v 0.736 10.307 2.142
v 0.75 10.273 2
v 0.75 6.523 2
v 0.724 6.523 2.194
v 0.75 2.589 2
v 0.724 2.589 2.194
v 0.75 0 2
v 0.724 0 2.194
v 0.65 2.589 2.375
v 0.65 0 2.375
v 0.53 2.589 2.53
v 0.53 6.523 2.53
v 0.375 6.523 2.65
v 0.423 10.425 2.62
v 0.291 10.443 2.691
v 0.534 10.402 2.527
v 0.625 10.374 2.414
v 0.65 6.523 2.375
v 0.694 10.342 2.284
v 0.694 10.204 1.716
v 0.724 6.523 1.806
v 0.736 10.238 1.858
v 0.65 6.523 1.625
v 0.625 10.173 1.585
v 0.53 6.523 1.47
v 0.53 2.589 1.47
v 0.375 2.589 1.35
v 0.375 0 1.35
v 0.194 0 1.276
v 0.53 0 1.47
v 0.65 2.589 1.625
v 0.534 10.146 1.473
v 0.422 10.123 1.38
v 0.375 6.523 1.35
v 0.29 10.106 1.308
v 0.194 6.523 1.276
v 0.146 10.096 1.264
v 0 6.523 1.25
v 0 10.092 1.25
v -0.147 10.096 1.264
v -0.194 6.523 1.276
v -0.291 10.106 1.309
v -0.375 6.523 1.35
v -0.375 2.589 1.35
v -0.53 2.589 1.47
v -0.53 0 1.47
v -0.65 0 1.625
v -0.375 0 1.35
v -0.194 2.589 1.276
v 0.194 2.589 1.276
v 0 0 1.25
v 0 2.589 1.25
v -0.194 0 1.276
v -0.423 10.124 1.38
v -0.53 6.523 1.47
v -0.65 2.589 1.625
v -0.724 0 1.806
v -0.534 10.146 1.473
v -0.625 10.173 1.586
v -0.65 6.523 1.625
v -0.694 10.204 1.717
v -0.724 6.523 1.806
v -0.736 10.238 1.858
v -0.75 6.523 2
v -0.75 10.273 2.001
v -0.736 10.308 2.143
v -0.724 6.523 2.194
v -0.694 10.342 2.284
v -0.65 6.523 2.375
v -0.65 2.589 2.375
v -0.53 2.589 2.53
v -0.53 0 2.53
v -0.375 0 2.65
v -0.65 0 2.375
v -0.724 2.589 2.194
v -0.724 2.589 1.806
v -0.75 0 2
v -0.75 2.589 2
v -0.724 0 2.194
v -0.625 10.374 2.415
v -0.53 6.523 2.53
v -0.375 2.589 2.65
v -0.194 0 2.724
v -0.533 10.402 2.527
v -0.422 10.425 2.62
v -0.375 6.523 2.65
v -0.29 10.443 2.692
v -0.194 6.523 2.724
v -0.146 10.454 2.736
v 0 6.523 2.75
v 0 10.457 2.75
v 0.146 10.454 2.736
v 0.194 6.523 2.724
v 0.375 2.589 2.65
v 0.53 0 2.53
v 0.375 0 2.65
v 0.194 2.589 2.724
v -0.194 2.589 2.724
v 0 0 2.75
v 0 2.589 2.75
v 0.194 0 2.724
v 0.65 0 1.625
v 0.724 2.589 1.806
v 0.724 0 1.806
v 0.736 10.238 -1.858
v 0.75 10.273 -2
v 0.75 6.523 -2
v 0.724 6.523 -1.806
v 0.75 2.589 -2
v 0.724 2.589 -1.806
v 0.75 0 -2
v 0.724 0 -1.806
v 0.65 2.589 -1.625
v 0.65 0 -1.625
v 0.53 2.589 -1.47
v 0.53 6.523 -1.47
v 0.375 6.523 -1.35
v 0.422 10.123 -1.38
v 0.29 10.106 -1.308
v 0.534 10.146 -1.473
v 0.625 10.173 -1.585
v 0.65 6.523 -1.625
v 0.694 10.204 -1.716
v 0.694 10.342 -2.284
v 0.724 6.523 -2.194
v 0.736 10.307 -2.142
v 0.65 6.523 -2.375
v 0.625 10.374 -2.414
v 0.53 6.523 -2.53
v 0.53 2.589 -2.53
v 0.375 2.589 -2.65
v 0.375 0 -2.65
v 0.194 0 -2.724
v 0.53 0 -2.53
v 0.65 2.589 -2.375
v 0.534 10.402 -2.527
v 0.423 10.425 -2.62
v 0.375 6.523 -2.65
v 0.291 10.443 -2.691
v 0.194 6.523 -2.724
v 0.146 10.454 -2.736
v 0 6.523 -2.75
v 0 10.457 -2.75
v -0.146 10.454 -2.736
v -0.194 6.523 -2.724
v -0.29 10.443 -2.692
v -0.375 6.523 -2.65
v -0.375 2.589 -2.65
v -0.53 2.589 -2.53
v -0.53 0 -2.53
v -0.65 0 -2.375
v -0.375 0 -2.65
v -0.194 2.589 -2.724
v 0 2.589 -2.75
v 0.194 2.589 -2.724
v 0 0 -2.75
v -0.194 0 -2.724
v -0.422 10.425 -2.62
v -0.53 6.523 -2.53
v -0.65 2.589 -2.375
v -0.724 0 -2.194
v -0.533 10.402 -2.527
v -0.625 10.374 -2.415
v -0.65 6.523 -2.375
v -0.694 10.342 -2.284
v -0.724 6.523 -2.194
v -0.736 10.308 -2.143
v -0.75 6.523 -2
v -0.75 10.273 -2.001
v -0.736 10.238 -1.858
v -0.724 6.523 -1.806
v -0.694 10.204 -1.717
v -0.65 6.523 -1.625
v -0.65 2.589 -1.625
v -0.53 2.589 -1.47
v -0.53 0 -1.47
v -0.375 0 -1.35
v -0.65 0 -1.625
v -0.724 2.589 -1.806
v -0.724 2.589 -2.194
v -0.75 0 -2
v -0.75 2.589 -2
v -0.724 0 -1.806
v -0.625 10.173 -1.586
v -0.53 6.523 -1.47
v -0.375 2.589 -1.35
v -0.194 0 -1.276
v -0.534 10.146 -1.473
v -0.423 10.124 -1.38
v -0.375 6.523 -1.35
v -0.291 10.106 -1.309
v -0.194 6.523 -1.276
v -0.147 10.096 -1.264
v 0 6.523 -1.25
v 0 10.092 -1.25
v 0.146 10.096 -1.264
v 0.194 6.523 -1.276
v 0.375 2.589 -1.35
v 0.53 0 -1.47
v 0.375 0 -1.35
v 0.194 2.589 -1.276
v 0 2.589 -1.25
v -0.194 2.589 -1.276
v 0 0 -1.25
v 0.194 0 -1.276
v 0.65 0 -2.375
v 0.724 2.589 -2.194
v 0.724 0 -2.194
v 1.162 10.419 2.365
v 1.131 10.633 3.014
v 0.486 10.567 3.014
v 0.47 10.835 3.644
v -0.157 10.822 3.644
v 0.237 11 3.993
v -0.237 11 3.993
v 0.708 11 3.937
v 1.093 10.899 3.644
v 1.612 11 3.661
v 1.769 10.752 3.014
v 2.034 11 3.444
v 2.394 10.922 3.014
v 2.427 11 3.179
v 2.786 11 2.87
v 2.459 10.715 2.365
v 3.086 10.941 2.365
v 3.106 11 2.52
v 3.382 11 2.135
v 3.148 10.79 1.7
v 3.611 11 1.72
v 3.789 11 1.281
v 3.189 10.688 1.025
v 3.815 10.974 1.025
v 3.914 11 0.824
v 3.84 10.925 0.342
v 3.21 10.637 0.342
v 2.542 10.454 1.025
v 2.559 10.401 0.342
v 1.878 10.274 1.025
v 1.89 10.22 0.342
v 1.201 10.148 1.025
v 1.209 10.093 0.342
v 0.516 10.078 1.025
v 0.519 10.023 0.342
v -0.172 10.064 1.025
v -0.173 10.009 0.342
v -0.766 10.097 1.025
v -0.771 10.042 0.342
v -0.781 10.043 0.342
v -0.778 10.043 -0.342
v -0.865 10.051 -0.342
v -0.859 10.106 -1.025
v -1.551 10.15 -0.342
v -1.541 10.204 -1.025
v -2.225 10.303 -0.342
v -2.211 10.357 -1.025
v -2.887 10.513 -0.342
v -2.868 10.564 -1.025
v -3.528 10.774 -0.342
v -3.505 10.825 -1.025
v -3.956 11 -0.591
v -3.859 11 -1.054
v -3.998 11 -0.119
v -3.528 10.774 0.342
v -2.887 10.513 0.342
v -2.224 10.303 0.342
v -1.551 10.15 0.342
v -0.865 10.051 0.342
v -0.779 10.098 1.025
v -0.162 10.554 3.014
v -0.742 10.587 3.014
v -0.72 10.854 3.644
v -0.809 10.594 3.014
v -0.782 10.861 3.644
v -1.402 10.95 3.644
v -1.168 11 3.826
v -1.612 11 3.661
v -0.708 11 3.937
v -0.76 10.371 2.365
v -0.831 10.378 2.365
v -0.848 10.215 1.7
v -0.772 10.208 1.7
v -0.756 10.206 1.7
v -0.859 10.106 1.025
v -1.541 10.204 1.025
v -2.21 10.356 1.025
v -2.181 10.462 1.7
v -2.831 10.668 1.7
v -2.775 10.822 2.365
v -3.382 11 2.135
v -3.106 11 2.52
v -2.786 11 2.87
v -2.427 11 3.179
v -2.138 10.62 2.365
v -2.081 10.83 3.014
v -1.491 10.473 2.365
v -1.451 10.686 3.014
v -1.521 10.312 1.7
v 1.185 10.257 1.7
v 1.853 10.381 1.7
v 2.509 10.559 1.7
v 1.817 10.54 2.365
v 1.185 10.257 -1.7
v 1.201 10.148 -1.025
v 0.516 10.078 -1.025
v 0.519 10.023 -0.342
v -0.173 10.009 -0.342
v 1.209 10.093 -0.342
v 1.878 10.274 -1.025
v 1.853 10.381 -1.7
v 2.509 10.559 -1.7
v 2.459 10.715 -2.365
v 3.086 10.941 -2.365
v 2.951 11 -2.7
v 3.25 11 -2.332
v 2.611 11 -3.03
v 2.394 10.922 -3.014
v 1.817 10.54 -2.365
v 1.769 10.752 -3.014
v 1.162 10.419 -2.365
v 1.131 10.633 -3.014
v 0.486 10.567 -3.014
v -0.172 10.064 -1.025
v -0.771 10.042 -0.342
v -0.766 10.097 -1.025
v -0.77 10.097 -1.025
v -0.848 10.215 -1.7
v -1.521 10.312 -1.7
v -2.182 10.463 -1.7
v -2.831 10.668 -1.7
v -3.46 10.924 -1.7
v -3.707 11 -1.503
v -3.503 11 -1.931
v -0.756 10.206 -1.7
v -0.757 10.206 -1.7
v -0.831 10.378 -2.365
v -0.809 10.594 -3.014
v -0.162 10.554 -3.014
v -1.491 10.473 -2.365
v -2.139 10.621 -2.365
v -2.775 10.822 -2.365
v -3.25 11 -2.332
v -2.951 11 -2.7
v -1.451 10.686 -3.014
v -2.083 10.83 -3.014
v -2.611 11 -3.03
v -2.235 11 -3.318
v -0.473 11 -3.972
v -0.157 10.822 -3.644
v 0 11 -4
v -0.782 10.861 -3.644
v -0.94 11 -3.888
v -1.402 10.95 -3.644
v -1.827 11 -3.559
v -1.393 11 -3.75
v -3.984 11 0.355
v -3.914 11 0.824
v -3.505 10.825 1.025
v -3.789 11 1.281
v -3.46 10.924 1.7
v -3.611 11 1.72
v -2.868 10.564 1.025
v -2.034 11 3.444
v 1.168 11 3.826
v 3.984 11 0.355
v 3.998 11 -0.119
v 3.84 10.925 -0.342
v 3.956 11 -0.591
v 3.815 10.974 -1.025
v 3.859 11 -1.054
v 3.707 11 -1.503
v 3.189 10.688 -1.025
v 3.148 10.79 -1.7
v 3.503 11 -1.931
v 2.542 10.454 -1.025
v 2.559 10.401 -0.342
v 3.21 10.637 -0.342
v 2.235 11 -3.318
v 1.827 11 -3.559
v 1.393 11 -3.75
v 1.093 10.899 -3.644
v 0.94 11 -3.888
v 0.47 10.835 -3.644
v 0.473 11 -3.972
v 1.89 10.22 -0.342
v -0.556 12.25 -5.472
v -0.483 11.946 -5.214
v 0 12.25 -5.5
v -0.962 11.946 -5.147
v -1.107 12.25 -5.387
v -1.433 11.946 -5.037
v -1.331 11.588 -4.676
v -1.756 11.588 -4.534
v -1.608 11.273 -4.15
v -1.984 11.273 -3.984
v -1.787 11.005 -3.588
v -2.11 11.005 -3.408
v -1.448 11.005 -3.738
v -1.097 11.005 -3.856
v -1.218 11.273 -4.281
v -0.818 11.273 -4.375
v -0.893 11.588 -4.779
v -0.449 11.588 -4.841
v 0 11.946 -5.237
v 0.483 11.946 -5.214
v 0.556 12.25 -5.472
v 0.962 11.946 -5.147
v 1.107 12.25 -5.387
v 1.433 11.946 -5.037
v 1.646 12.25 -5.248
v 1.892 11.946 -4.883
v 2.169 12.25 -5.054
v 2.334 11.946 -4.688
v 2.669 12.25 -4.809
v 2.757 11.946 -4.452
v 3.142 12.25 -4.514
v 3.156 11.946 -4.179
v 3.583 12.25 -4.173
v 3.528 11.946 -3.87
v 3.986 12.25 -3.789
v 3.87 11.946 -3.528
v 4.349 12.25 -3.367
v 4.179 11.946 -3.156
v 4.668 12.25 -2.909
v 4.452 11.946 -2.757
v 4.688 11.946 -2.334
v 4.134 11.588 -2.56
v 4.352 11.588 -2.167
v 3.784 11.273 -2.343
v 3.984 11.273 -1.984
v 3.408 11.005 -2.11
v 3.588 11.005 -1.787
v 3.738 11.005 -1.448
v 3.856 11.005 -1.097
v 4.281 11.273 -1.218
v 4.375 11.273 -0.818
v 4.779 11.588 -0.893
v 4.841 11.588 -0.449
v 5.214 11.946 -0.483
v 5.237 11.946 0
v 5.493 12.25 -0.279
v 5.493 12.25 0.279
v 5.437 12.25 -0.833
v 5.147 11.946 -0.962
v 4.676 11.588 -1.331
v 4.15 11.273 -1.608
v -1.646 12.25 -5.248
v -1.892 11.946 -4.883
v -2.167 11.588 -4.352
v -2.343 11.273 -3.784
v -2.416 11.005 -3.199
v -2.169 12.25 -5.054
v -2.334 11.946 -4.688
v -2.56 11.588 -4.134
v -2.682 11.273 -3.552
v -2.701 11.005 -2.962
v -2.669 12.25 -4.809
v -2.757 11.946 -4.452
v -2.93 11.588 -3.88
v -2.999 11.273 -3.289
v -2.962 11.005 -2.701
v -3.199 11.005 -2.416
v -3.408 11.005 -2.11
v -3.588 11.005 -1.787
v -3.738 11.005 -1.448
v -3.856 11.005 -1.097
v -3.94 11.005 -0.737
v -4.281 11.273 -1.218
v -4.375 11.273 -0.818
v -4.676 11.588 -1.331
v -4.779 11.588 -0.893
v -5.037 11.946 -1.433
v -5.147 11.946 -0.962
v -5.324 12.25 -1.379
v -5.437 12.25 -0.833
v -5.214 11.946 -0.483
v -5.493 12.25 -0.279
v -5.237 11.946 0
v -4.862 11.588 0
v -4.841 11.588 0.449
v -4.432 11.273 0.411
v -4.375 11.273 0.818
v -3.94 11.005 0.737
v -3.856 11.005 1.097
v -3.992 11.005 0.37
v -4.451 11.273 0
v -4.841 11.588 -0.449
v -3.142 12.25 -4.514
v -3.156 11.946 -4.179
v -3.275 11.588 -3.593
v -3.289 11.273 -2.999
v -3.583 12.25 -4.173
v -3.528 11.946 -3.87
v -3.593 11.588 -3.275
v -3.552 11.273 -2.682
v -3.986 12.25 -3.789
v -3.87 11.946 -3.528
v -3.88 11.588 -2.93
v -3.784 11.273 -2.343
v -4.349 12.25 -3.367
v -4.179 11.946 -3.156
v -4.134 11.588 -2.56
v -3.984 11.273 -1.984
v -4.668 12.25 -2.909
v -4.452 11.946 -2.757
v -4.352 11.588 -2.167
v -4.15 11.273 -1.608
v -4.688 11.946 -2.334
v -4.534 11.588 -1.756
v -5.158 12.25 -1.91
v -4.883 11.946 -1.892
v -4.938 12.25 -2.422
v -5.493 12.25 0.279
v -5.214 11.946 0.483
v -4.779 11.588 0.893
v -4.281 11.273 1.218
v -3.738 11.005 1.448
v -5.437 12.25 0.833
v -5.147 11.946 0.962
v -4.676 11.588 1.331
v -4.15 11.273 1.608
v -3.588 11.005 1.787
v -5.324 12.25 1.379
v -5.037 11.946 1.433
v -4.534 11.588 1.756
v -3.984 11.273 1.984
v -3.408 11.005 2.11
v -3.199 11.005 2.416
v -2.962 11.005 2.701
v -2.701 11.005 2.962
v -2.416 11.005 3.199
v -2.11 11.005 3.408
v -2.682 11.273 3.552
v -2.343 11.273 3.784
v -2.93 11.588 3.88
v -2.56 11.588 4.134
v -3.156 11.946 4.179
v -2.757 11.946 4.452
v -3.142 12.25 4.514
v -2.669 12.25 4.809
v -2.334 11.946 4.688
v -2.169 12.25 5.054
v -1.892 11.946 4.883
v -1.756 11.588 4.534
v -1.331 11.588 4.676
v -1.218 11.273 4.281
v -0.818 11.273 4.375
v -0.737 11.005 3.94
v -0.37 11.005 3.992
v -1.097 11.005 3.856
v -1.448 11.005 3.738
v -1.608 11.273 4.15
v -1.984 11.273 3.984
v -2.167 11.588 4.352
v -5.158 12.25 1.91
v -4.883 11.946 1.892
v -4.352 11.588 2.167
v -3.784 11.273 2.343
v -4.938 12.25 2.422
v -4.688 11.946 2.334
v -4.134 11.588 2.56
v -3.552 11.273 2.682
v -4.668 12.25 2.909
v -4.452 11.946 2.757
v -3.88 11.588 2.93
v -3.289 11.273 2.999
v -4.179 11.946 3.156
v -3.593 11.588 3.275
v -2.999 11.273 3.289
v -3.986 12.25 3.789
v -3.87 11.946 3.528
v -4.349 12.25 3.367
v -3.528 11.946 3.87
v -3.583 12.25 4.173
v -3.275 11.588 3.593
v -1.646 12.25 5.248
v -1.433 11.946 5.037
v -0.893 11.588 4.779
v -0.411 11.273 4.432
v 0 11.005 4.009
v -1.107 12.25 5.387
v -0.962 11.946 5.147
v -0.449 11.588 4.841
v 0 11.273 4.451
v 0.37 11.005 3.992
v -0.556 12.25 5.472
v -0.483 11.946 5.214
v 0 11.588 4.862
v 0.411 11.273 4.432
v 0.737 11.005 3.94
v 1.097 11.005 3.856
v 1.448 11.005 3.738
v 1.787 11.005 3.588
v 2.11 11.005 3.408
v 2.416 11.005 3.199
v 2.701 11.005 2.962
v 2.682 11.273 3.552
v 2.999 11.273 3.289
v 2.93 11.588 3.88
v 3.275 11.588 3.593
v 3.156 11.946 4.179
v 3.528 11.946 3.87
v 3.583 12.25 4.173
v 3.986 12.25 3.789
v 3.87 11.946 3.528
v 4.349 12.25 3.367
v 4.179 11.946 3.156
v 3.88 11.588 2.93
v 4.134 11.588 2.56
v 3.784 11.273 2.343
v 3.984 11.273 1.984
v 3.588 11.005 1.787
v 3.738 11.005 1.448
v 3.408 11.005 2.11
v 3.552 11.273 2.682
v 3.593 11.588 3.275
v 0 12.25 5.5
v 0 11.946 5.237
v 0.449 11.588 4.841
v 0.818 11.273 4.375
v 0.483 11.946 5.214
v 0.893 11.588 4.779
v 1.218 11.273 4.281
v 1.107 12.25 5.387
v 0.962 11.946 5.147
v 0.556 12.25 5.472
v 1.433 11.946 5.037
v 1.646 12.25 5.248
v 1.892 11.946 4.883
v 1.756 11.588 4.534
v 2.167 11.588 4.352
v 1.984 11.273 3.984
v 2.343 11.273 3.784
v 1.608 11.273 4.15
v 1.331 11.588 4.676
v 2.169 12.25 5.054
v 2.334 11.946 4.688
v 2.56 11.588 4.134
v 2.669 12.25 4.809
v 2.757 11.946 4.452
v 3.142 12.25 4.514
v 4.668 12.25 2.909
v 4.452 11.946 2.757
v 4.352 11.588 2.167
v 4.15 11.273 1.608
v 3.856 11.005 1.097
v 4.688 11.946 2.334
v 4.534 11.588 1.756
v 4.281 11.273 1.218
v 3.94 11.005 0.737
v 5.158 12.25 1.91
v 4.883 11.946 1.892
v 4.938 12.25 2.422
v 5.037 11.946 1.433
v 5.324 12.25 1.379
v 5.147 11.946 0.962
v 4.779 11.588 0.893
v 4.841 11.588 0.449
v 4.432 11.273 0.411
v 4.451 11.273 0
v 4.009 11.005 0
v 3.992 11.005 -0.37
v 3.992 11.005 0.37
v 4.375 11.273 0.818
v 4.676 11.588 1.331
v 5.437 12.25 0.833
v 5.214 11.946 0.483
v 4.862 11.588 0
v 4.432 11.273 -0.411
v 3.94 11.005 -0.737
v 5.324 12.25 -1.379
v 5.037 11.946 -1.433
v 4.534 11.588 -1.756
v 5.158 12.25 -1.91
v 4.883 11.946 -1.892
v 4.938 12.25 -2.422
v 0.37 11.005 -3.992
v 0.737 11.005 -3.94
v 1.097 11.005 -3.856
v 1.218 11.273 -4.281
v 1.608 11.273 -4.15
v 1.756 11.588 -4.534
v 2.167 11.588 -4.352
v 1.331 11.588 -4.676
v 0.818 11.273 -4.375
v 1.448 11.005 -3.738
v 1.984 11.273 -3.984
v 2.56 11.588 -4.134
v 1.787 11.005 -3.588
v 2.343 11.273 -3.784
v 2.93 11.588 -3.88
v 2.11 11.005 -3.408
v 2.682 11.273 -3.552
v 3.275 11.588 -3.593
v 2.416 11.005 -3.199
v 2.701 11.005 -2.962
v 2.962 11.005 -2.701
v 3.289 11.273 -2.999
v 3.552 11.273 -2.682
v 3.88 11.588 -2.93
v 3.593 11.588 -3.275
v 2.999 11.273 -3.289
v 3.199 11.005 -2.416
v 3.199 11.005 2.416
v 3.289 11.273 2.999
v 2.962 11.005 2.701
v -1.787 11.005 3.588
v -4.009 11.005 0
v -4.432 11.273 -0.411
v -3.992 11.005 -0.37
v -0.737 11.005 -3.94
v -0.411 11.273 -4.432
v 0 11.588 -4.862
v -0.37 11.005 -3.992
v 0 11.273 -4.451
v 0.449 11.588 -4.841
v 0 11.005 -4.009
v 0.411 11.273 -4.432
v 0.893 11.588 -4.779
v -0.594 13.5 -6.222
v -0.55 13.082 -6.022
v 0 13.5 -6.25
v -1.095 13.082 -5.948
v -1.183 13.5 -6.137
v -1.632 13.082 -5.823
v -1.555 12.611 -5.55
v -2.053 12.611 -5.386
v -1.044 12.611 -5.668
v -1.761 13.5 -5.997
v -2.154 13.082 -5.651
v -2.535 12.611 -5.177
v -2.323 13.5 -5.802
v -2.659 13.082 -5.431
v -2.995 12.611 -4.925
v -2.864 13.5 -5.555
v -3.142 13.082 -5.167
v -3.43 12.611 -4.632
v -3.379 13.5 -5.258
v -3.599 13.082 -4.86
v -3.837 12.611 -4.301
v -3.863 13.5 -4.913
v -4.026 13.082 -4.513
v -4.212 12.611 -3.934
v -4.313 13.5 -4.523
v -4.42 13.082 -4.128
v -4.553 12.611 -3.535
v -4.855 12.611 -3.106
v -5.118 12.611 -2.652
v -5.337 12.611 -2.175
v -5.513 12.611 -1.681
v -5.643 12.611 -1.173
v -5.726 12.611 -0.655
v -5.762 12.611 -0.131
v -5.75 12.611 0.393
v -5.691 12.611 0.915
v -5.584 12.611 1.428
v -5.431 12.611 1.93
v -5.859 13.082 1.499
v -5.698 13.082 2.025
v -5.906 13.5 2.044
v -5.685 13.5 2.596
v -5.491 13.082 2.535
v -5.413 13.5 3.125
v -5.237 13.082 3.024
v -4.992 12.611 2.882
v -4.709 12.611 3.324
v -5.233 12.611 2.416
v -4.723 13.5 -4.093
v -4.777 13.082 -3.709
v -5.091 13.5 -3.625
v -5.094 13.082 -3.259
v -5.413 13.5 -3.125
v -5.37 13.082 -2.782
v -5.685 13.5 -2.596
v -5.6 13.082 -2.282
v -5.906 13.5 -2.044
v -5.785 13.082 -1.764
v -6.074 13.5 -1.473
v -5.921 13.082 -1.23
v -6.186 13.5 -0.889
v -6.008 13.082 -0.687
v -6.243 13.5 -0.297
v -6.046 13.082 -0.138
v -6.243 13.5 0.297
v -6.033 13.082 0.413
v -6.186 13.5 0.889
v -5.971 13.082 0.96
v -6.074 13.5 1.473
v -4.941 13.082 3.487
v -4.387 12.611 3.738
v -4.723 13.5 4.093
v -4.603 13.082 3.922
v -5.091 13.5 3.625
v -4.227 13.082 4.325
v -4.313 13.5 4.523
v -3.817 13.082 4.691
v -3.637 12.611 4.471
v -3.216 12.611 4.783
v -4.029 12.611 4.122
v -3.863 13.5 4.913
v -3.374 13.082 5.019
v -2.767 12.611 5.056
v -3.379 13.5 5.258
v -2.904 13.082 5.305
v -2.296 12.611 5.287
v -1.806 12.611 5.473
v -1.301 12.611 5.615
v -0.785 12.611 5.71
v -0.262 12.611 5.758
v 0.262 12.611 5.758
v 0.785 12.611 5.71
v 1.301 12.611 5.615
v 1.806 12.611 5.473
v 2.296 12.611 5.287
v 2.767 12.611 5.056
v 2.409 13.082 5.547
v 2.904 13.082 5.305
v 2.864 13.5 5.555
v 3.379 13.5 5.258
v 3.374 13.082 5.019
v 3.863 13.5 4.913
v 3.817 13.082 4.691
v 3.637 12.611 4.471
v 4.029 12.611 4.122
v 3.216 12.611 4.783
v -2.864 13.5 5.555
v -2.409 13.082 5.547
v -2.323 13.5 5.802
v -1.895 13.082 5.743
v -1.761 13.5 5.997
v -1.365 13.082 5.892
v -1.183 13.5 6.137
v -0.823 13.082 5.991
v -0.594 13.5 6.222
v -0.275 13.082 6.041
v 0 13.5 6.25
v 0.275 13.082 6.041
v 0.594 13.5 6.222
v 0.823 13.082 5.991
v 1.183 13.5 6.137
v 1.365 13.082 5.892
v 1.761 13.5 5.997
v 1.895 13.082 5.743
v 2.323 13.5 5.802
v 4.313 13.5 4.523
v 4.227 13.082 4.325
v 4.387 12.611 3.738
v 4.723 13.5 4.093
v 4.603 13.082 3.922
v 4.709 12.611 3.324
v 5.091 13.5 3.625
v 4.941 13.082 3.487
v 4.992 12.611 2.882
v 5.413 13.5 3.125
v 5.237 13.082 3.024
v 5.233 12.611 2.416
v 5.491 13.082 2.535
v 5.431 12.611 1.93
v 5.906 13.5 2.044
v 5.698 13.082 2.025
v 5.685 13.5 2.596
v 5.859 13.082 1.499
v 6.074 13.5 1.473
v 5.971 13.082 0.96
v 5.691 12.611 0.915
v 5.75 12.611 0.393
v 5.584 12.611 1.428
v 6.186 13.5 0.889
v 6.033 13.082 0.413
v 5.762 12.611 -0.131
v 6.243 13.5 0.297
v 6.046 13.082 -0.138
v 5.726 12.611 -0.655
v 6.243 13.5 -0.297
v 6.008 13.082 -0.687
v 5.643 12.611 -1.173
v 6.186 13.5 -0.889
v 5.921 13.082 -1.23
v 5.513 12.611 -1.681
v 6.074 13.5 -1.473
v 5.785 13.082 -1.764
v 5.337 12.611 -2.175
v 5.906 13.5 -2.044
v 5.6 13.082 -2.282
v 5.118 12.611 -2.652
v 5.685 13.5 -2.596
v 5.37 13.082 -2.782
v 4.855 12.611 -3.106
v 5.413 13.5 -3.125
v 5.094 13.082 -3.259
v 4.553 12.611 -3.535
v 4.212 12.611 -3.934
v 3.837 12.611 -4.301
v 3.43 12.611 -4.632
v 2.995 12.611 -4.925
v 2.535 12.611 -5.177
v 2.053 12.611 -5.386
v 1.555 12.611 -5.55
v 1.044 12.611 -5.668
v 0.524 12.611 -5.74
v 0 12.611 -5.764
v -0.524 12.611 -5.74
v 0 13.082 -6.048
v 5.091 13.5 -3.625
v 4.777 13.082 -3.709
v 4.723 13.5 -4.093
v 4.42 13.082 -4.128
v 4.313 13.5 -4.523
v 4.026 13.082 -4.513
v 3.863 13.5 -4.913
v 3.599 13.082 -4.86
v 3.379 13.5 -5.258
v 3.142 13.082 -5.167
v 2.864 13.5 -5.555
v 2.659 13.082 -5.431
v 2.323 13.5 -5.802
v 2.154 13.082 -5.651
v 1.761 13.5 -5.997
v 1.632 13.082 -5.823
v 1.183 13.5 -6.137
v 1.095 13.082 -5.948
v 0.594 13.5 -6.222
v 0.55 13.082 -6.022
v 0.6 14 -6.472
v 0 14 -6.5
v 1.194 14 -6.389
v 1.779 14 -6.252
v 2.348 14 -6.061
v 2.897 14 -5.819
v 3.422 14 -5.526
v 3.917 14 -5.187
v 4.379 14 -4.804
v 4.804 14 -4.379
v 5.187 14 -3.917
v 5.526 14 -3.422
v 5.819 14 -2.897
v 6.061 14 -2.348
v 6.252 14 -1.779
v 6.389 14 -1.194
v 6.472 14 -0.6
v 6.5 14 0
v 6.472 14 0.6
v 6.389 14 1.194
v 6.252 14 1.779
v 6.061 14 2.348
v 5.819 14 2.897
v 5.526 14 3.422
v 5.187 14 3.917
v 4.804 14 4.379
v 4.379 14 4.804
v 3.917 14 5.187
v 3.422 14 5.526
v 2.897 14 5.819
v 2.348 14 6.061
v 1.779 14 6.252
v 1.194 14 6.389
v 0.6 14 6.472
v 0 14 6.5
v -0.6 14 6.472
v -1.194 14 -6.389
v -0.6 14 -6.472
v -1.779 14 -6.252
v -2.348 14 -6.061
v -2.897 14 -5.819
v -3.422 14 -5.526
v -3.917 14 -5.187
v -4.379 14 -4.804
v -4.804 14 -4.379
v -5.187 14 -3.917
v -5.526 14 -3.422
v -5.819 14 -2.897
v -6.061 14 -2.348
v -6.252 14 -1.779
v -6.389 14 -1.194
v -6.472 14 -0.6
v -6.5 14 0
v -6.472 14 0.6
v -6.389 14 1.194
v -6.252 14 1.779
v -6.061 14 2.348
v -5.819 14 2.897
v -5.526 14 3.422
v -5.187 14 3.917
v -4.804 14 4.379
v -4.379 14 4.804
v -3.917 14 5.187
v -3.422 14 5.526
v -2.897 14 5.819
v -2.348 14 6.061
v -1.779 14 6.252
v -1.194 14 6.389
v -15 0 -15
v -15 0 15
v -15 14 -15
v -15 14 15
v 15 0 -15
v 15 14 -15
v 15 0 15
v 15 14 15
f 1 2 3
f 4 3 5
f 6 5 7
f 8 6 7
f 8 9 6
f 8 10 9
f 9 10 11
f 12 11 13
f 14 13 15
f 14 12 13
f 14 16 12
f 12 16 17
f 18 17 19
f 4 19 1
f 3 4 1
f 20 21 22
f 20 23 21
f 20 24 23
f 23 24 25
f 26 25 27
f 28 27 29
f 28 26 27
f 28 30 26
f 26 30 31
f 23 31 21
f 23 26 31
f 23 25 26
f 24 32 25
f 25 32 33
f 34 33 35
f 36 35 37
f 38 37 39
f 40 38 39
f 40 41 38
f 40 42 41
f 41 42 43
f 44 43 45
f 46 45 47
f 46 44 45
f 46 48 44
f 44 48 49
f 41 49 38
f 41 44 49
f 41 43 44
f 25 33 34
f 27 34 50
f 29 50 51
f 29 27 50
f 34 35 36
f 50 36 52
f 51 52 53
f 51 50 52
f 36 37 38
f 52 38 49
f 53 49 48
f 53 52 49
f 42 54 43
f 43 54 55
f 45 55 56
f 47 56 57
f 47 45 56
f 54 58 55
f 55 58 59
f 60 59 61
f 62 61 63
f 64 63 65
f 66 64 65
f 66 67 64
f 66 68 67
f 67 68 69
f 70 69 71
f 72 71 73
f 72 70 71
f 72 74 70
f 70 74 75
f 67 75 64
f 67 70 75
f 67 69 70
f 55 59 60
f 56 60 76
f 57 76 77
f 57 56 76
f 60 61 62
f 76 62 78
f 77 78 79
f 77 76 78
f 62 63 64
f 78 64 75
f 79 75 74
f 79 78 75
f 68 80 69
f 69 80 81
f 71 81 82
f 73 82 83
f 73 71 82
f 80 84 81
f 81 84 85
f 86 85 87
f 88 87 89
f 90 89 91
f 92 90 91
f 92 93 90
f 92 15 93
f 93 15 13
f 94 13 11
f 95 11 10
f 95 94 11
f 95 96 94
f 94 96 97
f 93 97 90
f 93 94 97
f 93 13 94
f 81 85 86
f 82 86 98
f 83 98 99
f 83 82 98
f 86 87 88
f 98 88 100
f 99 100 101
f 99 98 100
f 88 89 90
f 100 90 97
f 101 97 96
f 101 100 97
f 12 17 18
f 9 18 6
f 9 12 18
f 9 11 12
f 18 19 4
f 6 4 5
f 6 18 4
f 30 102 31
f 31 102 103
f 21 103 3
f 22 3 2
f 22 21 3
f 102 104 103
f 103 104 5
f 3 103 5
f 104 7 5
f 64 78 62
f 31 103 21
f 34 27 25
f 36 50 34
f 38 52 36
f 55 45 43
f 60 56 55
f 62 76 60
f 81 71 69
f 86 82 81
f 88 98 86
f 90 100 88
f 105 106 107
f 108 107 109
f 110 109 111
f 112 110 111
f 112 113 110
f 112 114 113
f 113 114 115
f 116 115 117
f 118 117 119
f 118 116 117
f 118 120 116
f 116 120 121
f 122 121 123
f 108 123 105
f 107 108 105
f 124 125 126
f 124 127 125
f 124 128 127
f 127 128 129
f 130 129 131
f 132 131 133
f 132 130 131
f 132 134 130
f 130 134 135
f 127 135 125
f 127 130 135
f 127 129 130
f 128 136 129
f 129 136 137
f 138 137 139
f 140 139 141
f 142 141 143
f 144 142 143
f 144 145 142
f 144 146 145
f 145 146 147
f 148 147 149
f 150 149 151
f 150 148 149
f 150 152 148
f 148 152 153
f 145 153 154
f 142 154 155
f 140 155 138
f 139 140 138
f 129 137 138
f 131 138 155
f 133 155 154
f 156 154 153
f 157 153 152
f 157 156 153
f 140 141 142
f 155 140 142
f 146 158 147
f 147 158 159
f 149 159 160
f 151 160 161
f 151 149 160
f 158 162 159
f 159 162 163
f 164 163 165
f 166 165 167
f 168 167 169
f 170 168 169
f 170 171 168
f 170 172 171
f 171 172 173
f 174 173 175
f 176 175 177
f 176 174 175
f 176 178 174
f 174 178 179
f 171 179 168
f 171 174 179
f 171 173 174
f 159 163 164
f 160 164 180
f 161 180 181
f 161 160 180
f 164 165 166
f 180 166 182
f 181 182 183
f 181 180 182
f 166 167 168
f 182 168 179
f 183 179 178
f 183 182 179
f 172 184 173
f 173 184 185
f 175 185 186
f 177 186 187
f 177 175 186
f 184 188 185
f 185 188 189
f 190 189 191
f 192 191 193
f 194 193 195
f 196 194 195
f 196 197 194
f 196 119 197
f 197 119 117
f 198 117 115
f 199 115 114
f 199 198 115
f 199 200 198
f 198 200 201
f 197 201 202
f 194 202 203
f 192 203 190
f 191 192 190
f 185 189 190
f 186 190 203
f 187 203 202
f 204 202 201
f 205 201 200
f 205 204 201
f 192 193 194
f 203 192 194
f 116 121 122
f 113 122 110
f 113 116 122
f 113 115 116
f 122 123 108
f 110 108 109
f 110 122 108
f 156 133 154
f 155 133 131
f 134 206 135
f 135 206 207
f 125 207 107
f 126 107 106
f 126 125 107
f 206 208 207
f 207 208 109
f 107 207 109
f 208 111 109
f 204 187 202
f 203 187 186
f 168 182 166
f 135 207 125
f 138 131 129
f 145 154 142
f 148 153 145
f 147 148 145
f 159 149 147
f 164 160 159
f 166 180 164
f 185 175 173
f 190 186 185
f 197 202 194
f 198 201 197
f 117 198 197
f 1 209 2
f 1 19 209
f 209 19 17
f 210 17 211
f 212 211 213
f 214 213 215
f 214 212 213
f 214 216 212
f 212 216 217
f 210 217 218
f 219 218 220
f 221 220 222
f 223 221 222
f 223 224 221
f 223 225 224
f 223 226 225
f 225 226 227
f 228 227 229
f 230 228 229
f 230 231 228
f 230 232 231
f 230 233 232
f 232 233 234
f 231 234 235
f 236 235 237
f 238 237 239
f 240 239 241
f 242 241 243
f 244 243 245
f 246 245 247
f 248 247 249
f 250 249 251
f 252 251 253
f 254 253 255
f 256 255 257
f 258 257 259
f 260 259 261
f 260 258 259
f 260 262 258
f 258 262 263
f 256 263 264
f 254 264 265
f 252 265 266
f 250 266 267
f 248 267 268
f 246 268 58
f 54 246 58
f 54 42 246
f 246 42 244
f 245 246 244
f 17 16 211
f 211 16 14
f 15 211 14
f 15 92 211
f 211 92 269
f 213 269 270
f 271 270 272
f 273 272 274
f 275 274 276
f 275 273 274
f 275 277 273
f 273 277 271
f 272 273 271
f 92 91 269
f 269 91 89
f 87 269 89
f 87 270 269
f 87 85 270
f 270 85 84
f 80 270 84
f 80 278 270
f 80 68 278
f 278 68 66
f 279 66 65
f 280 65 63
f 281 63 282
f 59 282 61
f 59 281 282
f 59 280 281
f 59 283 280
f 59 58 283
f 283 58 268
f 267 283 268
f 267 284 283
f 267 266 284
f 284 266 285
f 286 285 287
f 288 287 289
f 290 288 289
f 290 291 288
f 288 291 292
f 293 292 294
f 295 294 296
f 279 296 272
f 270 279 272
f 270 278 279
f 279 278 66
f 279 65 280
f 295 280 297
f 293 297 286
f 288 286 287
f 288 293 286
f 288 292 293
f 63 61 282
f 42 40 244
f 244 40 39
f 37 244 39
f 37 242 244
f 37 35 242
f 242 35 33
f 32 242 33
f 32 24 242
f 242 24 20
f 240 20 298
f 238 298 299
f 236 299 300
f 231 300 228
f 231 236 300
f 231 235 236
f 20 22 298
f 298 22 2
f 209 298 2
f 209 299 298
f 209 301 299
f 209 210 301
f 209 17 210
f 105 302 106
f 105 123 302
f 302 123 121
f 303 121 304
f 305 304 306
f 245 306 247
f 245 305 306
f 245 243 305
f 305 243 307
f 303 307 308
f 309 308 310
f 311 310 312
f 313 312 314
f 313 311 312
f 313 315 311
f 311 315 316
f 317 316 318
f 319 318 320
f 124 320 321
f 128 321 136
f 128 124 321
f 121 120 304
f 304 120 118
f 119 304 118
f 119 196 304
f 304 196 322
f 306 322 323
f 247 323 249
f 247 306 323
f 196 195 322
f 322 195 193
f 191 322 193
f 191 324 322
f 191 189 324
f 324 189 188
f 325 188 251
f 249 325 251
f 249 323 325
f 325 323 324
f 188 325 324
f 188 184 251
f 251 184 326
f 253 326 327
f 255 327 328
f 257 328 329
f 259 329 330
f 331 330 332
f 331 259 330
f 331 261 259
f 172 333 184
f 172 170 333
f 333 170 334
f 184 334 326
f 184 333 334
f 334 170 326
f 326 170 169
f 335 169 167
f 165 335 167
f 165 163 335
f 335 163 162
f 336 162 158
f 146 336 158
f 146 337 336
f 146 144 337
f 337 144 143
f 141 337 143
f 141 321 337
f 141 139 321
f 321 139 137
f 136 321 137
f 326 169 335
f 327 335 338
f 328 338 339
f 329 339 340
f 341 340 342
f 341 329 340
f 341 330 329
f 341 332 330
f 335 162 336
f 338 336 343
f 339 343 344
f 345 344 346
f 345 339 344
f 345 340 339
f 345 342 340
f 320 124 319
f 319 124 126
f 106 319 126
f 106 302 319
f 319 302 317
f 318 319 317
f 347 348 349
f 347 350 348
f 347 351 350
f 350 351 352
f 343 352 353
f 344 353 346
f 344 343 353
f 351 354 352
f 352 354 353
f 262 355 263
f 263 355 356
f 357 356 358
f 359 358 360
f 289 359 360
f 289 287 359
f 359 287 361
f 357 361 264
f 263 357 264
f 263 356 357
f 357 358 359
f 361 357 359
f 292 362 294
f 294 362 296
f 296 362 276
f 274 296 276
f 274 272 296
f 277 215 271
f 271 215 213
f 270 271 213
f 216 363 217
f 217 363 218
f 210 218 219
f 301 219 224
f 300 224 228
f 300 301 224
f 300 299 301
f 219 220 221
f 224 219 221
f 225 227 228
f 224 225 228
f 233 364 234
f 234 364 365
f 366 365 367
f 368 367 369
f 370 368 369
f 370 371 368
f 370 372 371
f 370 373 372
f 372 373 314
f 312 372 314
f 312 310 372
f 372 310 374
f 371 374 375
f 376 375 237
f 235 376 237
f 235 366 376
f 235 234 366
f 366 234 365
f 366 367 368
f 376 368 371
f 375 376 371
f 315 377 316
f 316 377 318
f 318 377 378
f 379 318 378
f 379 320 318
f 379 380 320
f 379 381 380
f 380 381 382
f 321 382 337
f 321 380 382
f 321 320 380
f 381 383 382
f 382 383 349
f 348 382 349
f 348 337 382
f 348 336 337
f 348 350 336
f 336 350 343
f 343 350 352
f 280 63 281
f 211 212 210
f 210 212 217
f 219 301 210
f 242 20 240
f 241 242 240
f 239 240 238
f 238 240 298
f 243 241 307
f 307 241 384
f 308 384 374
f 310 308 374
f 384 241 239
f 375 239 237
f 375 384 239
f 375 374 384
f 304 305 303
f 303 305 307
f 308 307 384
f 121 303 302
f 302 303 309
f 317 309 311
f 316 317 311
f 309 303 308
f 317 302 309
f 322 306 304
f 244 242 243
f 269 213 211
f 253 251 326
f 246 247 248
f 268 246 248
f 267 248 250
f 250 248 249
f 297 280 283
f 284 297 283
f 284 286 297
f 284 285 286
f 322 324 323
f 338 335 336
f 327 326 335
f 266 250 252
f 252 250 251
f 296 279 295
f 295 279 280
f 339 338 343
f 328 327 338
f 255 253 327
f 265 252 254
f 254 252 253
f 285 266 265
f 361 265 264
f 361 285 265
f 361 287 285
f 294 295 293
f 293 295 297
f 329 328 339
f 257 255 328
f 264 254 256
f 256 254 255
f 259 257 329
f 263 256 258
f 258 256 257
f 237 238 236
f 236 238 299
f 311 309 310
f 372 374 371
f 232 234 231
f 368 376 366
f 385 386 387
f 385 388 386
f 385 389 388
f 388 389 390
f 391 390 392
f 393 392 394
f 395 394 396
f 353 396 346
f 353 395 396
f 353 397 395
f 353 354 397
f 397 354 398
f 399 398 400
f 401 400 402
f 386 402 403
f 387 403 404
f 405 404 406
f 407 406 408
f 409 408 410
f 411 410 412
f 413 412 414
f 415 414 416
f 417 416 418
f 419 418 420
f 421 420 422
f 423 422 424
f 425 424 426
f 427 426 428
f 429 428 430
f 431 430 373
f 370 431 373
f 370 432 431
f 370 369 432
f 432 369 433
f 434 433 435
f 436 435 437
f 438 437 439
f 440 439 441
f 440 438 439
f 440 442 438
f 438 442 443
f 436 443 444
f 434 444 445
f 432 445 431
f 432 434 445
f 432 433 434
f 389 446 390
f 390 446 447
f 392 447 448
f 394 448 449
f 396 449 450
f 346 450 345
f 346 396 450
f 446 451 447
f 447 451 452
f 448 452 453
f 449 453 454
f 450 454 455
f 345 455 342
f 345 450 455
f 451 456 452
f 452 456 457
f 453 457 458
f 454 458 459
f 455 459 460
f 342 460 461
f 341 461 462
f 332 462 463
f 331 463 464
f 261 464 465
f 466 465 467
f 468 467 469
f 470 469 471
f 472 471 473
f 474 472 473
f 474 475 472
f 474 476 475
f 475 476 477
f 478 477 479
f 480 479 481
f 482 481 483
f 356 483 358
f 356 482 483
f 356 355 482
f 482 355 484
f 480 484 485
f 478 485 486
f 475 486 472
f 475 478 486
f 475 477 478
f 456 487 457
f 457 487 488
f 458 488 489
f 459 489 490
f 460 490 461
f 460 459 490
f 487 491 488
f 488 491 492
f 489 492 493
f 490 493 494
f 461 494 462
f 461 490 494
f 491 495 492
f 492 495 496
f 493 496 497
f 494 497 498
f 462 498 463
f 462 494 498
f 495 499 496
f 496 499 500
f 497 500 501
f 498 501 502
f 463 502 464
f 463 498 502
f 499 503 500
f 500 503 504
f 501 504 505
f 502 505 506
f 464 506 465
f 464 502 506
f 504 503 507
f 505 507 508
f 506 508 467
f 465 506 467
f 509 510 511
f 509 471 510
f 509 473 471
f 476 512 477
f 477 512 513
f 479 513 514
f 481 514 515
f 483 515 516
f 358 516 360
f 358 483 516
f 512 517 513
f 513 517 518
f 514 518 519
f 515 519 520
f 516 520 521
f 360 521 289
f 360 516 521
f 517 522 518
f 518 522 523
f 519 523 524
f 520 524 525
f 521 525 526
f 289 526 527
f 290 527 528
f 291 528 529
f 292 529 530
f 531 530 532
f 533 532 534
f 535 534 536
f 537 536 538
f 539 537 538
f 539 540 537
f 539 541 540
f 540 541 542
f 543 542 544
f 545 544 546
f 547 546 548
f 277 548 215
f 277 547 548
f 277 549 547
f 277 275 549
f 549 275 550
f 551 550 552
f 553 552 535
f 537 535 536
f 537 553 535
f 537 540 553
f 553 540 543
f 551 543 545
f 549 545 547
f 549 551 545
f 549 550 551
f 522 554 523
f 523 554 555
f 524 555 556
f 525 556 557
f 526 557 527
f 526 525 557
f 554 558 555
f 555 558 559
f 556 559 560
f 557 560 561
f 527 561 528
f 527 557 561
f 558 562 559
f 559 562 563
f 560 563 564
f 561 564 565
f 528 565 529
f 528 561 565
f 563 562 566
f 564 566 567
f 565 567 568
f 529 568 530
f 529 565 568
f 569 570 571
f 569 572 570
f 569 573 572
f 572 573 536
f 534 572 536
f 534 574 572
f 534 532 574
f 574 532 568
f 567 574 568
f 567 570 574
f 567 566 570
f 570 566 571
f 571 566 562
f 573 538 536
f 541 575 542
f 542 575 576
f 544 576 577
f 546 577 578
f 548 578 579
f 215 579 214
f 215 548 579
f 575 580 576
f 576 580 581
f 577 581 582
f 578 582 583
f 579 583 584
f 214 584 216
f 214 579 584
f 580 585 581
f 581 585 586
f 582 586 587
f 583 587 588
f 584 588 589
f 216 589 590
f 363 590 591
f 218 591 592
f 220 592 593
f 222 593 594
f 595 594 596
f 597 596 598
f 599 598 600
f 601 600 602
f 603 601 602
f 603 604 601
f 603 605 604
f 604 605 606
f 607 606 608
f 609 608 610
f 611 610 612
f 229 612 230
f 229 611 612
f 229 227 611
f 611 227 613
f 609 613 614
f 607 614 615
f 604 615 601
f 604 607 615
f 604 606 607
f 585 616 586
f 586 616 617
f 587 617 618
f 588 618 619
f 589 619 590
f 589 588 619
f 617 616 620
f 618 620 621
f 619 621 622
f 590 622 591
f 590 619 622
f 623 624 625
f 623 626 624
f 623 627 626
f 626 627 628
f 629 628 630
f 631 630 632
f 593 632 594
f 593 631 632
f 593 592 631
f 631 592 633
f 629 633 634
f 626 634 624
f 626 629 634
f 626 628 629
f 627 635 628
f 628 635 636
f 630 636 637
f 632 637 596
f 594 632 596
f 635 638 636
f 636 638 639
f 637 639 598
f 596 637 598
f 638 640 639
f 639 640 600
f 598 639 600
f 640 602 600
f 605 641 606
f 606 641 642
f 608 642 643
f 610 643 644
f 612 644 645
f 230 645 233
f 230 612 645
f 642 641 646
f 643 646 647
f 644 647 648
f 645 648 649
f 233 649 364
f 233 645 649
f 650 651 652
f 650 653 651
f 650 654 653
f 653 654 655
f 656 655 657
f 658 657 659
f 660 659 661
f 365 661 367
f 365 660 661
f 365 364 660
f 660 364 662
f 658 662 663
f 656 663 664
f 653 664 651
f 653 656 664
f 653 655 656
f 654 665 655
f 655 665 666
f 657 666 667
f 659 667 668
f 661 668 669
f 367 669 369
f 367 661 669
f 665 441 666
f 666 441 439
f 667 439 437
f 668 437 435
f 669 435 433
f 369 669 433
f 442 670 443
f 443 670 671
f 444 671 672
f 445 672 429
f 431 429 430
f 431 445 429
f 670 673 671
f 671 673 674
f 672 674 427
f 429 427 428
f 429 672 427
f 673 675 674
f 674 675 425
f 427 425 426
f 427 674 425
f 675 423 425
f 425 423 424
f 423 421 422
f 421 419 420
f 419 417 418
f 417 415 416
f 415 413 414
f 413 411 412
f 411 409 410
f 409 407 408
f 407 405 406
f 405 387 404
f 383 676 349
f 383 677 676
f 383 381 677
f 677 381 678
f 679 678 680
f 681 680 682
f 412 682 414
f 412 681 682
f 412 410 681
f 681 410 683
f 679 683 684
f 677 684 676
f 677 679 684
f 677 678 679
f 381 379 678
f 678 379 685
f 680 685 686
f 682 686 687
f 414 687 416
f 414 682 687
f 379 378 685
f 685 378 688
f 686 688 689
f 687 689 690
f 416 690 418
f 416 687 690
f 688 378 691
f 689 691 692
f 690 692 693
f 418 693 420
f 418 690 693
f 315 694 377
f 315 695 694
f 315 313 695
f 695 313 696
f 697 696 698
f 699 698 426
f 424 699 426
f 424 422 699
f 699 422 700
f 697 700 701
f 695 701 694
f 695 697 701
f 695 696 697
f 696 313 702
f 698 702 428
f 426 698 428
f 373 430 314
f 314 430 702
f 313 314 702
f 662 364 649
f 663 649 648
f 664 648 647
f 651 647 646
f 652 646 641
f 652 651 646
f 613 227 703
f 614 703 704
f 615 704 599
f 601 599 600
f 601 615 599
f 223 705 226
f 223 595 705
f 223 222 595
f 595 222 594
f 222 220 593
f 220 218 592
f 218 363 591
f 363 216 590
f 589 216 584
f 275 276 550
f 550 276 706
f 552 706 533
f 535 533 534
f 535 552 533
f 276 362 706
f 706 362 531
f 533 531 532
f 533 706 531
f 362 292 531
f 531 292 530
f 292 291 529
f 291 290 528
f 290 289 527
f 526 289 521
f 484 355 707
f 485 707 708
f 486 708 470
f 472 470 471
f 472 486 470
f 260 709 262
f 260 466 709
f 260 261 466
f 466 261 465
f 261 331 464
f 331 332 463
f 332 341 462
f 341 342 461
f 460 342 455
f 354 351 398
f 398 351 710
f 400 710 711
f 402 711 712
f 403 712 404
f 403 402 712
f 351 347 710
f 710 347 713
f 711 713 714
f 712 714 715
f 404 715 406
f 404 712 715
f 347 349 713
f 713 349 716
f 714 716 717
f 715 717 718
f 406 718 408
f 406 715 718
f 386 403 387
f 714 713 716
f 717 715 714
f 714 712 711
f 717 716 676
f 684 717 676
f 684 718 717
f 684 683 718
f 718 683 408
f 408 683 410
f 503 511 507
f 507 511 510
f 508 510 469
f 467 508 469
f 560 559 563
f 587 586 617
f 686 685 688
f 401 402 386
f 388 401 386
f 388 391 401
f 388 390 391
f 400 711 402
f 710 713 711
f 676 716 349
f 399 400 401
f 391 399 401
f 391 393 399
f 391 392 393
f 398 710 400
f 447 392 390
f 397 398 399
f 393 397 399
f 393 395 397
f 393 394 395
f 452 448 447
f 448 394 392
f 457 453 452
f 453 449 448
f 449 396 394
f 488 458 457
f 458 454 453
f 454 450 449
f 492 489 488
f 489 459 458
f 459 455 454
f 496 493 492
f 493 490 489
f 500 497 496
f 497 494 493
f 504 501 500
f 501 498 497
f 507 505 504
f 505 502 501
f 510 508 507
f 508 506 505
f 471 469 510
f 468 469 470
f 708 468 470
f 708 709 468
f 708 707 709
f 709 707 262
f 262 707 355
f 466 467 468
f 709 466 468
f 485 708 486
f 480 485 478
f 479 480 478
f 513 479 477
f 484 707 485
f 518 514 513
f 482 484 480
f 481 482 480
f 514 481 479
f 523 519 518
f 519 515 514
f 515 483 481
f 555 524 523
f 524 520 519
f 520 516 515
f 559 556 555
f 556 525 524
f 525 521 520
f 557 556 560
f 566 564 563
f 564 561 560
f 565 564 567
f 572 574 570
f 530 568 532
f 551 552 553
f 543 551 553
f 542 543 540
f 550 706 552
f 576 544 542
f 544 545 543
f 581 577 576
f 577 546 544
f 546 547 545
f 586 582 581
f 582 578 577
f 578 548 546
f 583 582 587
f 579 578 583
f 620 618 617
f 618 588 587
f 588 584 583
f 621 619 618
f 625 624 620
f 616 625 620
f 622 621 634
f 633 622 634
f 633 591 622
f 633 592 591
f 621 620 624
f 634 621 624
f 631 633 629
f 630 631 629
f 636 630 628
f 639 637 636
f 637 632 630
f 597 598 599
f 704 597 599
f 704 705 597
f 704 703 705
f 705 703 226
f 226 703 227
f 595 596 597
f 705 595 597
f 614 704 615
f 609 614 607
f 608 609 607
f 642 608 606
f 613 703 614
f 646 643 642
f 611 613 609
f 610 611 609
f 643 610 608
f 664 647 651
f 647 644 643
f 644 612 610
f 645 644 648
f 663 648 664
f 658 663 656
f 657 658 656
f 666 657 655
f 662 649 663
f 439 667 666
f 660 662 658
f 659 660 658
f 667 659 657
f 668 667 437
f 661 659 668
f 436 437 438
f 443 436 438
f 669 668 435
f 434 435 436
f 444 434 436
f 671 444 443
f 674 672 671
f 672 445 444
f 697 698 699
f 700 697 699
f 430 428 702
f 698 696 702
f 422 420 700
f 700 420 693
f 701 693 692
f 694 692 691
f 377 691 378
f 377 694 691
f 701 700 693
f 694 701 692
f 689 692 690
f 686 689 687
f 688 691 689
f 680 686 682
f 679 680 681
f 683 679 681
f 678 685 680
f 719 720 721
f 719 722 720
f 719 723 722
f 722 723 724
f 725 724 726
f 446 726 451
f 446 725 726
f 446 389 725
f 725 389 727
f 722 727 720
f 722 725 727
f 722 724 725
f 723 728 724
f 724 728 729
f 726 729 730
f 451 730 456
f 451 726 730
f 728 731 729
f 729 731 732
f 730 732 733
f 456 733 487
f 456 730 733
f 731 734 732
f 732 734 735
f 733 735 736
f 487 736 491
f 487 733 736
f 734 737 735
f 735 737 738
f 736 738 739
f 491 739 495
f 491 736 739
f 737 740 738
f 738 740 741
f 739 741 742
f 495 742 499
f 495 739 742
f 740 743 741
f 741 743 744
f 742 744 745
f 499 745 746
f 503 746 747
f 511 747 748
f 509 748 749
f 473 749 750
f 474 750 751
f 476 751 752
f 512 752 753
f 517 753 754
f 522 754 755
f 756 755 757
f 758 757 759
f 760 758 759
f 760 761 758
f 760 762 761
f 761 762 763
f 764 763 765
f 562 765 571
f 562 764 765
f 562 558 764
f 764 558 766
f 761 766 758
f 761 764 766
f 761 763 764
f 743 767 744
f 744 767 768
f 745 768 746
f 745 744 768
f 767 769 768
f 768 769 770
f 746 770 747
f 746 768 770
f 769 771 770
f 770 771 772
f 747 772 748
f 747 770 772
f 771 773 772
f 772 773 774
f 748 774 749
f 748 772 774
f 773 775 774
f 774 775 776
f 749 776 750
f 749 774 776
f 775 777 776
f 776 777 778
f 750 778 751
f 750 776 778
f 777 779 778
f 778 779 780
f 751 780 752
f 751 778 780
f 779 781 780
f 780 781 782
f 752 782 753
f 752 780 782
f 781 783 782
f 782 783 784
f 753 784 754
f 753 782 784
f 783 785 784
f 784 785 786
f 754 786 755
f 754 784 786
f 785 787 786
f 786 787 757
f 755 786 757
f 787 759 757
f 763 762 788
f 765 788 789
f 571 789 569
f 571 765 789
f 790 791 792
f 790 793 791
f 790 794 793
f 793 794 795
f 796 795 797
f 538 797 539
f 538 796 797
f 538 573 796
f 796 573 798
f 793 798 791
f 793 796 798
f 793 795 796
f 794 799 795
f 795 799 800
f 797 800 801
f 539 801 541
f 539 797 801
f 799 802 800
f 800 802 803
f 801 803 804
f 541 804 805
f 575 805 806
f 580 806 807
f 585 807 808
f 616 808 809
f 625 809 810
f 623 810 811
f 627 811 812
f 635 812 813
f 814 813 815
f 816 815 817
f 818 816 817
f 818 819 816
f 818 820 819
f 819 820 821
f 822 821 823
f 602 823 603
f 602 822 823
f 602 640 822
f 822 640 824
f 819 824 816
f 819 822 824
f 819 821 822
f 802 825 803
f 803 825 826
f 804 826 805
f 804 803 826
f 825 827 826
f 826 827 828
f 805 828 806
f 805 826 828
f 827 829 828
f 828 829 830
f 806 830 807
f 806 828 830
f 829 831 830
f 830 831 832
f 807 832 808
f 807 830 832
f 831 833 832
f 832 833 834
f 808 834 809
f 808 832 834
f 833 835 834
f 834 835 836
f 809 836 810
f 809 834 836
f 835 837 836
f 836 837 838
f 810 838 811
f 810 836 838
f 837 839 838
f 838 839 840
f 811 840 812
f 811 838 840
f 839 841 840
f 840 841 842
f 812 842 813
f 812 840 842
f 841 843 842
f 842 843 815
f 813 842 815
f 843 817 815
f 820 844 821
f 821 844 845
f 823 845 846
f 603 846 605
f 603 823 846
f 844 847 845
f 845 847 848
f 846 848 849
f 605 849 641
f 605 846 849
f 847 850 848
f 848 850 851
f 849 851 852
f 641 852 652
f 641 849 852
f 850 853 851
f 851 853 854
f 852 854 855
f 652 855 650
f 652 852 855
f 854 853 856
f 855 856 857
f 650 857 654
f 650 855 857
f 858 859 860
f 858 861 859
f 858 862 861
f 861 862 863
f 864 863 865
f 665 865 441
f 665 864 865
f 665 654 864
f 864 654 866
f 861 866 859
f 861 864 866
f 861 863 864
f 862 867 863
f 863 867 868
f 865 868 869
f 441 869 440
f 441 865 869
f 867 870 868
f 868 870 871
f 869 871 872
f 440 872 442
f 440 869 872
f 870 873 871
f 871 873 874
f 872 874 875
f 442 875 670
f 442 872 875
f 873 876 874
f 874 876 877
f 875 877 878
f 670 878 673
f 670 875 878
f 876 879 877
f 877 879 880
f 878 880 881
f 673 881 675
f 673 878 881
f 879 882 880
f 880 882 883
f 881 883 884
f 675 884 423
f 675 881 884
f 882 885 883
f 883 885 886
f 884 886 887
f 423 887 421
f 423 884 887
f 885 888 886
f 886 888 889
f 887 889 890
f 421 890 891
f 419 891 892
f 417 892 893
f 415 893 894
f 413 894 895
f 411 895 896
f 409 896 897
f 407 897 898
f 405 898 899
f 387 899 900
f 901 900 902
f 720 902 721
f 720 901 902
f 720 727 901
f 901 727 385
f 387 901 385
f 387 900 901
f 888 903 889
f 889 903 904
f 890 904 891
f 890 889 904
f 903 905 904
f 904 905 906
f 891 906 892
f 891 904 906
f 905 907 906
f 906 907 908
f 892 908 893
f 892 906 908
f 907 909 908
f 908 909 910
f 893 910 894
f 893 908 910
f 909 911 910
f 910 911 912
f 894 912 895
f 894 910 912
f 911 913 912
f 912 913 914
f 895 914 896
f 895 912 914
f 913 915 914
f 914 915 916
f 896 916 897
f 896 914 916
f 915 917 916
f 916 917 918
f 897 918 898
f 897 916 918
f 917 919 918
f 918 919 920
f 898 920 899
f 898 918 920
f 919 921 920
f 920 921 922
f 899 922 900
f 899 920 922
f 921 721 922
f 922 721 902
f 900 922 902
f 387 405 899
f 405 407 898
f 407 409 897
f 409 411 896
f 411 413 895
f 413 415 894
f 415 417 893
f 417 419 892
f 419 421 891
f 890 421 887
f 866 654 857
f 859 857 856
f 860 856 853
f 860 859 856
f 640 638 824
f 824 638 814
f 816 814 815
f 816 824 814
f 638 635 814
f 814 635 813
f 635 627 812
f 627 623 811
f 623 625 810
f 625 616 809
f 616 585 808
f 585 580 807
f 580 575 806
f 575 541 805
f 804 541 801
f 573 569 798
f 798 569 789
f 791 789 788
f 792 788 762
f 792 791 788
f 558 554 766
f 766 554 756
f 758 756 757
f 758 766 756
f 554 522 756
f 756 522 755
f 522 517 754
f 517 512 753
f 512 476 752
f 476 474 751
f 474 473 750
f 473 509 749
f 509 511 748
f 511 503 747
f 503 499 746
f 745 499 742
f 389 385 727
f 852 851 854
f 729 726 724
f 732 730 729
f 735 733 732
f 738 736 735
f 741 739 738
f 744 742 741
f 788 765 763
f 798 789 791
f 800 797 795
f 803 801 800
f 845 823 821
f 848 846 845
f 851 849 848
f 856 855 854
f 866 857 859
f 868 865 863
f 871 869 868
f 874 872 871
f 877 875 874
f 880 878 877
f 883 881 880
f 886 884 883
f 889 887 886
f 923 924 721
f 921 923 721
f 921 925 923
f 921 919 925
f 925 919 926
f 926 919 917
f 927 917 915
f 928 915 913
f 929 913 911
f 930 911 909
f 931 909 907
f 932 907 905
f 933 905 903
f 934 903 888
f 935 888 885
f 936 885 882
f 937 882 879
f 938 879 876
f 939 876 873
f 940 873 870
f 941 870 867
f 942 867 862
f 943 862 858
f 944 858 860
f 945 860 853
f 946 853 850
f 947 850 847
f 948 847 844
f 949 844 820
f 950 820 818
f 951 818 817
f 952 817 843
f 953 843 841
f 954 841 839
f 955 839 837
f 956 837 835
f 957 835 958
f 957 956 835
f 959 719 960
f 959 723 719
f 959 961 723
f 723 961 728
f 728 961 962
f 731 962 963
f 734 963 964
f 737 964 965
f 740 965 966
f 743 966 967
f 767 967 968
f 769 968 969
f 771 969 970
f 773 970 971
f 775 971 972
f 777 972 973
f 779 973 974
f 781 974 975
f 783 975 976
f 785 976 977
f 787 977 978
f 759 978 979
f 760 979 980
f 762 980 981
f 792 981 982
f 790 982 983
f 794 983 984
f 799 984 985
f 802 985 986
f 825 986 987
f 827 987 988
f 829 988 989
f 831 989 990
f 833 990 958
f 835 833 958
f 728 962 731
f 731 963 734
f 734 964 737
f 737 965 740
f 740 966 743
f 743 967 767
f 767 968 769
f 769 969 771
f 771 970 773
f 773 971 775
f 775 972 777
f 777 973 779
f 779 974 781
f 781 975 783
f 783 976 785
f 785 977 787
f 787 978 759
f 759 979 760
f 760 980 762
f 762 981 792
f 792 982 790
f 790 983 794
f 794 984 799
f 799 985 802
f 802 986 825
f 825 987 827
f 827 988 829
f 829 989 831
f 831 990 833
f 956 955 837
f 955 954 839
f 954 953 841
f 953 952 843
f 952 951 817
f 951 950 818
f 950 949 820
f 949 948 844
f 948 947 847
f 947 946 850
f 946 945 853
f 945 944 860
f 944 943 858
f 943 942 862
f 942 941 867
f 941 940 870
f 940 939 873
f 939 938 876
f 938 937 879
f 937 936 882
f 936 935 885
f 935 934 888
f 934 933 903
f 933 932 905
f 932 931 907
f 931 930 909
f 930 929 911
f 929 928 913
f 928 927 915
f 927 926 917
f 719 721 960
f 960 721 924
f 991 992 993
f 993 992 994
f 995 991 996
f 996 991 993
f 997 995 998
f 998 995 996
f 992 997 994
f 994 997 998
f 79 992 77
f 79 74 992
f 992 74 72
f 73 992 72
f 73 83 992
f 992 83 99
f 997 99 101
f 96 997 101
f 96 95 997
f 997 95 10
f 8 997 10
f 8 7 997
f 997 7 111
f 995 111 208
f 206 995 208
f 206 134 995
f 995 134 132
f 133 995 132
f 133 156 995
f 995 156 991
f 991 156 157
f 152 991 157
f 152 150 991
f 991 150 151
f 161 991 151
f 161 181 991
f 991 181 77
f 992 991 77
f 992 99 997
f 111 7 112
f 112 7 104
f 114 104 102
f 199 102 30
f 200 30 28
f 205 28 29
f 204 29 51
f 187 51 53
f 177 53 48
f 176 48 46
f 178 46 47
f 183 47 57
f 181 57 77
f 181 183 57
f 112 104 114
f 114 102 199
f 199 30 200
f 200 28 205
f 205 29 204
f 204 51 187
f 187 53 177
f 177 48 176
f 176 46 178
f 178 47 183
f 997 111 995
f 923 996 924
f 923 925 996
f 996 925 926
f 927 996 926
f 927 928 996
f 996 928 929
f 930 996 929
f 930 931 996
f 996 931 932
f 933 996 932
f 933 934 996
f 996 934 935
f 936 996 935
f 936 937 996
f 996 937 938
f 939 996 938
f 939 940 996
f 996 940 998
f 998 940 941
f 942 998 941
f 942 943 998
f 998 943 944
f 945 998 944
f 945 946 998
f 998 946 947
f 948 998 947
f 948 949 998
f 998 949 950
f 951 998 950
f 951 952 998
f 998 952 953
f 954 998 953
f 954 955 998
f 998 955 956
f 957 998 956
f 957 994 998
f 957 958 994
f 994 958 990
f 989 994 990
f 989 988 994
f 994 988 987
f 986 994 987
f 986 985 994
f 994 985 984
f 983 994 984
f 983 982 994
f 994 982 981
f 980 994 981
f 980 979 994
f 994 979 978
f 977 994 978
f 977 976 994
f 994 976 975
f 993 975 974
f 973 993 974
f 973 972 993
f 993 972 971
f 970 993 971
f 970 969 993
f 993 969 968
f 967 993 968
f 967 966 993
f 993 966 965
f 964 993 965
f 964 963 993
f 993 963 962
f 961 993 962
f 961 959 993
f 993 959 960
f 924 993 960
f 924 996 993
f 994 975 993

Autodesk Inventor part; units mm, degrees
ref_plane "XZ Plane" through (0, 0, 0) normal (0, 1, 0) x (-1, 0, 0)
ref_plane "XY Plane" through (0, 0, 0) normal (0, 0, 1) x (1, 0, 0)
sketch "Sketch1" plane through (0, 0, 0) normal (0, 1, 0) x (-1, 0, 0)
  line L0 (-15, 15) -> (15, 15)
  line L1 (15, 15) -> (15, -15)
  line L2 (15, -15) -> (-15, -15)
  line L3 (-15, -15) -> (-15, 15)
  line L4 (-15, 15) -> (15, -15) construction
  line L5 (15, 15) -> (-15, -15) construction
  point P0 (0, 0)
  dimension "d0" = 30
  dimension "d1" = 30
extrude "Extrusion1" add sketch "Sketch1" along normal blind 14
sketch "Sketch2" plane through (0, 14, 0) normal (0, 1, 0) x (1, 0, 0)
  point P0 (0, 0)
  point P1 (0, 0)
sketch "Sketch3" plane through (0, 0, 0) normal (1, 0, 0) x (0, 1, 0)
  line L0 (14, -15) -> (14, 15) construction
  line L1 (14, 0) -> (14, -6.5) construction
  line L2 (14, 0) -> (14, -6.5)
  line L3 (14, 0) -> (10, 0) construction
  line L4 (14, 0) -> (11, 0) construction
  line L5 (11, 0) -> (11, -4) construction
  line L6 (11, 0) -> (12.25, 0) construction
  line L7 (12.25, 0) -> (12.25, -5.5) construction
  line L8 (10, 0) -> (10, 1) construction
  line L9 (14, 0) -> (13.5, 0) construction
  line L10 (13.5, 0) -> (13.5, -6.25) construction
  arc A0 (10, 0) -> (11, -4) centre (18.5, 0) ccw
  arc A1 (11, -4) -> (12.25, -5.5) centre (15.2361, -1.7407) ccw
  arc A2 (12.25, -5.5) -> (13.5, -6.25) centre (15.7243, -1.1261) ccw
  line L11 (13.5, -6.25) -> (14, -6.5)
  line L12 (14, 0) -> (10, 0)
  line L13 (-3.7, 0) -> (22.2, 0) projected
  point P0 (0, 0)
  dimension "d4" = 6.5
  dimension "d5" = 4
  dimension "d6" = 3
  dimension "d7" = 4
  dimension "d8" = 1.25
  dimension "d9" = 5.5
  dimension "d10" = 1
  dimension "d11" = 0.5
  dimension "d12" = 6.25
revolve "Revolution1" cut sketch "Sketch3" angle 360 about axis through (0, -10, 0) along (0, 1, 0)
sketch "Sketch4" plane through (0, 14, 0) normal (0, 1, 0) x (1, 0, 0)
  line L0 (0, 0) -> (0, 2) construction
  line L1 (0, 2) -> (0, -2) construction
  dimension "d14" = 2
  dimension "d15" = 4
hole "Hole1" at (0, 14, 2) at (0, 14, -2) direction (0, -1, 0) diameter 1.5 depth 100 tip angle 118
properties part number "ProxFinger_Mold"
